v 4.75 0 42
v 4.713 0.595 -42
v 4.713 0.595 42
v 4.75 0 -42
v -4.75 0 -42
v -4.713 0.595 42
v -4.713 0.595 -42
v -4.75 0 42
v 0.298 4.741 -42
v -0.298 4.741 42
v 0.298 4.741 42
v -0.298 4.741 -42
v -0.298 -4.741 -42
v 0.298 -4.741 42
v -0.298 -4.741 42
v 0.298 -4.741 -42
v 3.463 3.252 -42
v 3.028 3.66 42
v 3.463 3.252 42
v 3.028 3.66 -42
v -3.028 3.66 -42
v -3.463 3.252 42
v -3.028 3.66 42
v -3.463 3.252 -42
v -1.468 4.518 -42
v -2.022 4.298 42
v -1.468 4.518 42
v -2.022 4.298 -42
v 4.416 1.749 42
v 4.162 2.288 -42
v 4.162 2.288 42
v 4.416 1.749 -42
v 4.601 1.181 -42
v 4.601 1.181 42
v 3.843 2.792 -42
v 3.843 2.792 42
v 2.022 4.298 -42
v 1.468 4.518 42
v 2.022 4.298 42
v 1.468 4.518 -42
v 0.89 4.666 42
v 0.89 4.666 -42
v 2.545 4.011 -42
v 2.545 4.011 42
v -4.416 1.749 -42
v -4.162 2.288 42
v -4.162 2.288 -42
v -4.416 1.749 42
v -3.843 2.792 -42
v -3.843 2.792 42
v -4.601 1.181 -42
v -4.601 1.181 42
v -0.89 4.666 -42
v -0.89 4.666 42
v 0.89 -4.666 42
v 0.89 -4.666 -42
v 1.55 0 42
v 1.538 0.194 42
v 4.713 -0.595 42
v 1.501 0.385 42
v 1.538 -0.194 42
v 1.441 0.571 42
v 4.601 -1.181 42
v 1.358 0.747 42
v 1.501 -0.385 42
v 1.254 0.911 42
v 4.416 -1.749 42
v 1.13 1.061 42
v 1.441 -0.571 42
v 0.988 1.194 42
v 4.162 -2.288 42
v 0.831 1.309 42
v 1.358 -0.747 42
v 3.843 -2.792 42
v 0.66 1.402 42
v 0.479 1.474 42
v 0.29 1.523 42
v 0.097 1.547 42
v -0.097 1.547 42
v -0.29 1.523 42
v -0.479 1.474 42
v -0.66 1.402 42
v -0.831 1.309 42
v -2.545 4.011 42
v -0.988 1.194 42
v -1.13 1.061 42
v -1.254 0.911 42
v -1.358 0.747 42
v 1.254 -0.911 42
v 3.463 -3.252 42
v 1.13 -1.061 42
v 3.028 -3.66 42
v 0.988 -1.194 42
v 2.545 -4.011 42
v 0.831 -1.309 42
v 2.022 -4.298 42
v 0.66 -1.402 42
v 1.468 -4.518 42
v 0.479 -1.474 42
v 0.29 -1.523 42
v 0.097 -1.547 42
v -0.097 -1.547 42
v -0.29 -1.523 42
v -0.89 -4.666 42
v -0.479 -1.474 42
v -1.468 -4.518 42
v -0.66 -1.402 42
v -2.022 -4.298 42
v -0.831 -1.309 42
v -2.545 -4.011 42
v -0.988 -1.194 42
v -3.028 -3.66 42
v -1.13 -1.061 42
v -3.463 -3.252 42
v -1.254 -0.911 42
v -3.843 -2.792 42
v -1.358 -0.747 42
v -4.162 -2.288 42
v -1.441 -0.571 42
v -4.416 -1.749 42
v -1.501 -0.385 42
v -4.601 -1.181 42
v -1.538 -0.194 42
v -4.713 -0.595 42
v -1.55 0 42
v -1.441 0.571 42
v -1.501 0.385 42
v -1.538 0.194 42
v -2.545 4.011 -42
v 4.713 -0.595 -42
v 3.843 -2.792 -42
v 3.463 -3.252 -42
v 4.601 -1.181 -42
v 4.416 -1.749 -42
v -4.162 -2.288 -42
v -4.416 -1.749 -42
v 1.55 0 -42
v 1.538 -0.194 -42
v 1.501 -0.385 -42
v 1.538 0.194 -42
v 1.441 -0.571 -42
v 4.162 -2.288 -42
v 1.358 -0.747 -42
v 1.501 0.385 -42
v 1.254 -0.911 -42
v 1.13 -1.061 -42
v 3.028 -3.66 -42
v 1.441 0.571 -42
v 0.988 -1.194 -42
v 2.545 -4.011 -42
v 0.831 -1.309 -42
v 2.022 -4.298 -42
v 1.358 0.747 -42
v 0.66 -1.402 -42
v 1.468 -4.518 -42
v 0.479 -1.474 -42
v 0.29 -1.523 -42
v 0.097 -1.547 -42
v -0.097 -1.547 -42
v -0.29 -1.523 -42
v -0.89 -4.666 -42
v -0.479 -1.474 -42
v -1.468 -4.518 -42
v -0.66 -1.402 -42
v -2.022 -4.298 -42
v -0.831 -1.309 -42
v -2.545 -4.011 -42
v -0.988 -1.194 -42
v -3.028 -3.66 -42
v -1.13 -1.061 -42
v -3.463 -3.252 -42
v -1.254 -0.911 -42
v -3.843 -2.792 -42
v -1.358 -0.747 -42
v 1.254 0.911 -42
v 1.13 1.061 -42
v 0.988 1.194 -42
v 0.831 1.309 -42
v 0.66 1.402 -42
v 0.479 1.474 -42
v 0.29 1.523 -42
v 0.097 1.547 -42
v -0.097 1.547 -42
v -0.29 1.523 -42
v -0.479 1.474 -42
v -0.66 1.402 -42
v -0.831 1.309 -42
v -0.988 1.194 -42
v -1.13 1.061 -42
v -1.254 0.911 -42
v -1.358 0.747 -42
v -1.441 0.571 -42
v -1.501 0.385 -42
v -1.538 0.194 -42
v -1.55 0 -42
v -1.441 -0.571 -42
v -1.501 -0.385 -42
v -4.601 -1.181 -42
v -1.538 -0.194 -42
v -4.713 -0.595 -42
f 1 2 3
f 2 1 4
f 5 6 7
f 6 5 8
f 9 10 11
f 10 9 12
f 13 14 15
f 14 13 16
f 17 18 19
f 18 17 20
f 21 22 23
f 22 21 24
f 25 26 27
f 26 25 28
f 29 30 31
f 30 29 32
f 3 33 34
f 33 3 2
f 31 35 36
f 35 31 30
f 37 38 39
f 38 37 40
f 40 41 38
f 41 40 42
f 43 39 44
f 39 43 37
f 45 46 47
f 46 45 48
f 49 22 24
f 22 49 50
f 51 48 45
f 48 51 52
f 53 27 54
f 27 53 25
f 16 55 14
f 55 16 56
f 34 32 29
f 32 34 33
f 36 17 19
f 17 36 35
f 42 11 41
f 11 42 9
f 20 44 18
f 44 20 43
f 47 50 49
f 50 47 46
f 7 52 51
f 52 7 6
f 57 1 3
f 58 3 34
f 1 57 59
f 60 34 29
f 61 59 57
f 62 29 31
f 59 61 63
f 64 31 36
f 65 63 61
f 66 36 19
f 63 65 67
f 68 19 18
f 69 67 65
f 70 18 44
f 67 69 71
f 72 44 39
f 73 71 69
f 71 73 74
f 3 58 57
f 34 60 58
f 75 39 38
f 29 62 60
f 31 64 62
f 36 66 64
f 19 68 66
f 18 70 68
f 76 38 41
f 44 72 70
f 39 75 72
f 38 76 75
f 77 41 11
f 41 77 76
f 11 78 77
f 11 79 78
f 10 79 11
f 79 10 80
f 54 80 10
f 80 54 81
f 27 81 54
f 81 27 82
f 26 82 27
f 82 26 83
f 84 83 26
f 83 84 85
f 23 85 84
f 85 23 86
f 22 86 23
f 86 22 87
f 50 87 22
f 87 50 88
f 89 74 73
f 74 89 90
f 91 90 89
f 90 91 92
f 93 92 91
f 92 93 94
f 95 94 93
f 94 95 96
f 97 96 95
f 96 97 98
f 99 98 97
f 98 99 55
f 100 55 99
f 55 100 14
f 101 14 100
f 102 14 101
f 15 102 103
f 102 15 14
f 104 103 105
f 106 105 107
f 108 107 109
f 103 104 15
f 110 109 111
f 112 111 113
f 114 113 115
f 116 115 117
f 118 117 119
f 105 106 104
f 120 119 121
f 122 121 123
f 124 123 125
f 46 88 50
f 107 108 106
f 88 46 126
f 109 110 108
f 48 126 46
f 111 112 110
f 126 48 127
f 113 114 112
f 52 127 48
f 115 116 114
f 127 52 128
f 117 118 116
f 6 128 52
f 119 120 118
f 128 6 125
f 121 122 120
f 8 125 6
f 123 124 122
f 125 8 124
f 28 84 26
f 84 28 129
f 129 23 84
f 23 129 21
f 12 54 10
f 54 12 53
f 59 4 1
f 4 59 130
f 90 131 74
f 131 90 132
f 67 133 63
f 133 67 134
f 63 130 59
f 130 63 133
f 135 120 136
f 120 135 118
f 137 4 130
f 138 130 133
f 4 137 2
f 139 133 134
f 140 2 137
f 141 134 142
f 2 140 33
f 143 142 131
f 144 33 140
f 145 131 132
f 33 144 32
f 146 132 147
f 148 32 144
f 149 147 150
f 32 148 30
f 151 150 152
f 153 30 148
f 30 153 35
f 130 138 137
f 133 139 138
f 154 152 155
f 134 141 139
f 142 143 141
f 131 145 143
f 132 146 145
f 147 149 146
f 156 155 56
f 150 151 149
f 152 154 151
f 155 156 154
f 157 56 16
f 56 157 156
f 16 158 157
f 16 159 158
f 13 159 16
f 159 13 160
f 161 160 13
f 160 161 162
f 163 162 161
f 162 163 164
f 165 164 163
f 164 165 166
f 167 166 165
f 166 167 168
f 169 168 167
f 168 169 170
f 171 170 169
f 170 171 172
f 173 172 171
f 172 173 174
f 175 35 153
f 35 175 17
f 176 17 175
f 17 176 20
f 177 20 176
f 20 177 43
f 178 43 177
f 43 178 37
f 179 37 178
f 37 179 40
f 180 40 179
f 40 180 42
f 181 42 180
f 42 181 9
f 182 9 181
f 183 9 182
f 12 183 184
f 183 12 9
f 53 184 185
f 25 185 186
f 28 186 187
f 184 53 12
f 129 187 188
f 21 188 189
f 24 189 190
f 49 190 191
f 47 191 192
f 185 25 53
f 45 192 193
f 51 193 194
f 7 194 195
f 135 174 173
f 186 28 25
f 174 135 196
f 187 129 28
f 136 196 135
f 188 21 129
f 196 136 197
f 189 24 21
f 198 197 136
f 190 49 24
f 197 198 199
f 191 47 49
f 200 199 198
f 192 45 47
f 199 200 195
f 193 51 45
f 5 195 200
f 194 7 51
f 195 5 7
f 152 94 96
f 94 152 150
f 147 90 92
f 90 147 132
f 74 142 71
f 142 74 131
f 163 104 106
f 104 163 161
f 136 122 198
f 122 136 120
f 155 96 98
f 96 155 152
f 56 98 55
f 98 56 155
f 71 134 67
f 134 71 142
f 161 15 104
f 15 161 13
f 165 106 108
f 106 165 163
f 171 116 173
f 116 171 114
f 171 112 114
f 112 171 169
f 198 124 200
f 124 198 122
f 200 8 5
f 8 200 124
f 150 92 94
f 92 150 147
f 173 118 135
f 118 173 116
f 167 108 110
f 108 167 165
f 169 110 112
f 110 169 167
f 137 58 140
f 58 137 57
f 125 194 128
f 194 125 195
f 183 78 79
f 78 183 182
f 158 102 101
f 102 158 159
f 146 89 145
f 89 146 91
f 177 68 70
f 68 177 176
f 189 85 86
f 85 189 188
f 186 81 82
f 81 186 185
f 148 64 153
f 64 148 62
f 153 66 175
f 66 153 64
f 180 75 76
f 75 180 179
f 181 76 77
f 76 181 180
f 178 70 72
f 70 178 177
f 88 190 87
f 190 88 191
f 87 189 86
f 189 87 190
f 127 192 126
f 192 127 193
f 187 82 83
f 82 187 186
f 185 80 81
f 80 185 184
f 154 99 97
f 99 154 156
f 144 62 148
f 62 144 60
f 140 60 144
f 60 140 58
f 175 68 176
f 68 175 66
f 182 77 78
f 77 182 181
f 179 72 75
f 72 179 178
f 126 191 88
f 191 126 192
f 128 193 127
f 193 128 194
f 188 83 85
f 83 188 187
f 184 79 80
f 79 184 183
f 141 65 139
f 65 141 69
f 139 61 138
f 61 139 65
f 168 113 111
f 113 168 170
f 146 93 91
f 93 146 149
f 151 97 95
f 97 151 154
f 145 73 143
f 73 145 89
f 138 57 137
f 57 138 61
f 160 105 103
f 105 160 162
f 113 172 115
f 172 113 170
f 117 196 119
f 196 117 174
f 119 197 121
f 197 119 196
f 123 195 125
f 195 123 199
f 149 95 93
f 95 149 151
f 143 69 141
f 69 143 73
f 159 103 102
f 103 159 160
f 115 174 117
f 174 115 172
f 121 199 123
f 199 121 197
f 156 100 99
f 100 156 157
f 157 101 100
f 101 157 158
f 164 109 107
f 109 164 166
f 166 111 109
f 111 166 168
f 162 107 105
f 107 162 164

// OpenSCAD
$fn = 50;


difference() {
	union() {
		translate(v = [0, 0, -42.0000000000]) {
			cylinder(h = 84, r = 4.7500000000);
		}
	}
	union() {
		translate(v = [0, 0, -100.0000000000]) {
			cylinder(h = 200, r = 1.5500000000);
		}
	}
}
